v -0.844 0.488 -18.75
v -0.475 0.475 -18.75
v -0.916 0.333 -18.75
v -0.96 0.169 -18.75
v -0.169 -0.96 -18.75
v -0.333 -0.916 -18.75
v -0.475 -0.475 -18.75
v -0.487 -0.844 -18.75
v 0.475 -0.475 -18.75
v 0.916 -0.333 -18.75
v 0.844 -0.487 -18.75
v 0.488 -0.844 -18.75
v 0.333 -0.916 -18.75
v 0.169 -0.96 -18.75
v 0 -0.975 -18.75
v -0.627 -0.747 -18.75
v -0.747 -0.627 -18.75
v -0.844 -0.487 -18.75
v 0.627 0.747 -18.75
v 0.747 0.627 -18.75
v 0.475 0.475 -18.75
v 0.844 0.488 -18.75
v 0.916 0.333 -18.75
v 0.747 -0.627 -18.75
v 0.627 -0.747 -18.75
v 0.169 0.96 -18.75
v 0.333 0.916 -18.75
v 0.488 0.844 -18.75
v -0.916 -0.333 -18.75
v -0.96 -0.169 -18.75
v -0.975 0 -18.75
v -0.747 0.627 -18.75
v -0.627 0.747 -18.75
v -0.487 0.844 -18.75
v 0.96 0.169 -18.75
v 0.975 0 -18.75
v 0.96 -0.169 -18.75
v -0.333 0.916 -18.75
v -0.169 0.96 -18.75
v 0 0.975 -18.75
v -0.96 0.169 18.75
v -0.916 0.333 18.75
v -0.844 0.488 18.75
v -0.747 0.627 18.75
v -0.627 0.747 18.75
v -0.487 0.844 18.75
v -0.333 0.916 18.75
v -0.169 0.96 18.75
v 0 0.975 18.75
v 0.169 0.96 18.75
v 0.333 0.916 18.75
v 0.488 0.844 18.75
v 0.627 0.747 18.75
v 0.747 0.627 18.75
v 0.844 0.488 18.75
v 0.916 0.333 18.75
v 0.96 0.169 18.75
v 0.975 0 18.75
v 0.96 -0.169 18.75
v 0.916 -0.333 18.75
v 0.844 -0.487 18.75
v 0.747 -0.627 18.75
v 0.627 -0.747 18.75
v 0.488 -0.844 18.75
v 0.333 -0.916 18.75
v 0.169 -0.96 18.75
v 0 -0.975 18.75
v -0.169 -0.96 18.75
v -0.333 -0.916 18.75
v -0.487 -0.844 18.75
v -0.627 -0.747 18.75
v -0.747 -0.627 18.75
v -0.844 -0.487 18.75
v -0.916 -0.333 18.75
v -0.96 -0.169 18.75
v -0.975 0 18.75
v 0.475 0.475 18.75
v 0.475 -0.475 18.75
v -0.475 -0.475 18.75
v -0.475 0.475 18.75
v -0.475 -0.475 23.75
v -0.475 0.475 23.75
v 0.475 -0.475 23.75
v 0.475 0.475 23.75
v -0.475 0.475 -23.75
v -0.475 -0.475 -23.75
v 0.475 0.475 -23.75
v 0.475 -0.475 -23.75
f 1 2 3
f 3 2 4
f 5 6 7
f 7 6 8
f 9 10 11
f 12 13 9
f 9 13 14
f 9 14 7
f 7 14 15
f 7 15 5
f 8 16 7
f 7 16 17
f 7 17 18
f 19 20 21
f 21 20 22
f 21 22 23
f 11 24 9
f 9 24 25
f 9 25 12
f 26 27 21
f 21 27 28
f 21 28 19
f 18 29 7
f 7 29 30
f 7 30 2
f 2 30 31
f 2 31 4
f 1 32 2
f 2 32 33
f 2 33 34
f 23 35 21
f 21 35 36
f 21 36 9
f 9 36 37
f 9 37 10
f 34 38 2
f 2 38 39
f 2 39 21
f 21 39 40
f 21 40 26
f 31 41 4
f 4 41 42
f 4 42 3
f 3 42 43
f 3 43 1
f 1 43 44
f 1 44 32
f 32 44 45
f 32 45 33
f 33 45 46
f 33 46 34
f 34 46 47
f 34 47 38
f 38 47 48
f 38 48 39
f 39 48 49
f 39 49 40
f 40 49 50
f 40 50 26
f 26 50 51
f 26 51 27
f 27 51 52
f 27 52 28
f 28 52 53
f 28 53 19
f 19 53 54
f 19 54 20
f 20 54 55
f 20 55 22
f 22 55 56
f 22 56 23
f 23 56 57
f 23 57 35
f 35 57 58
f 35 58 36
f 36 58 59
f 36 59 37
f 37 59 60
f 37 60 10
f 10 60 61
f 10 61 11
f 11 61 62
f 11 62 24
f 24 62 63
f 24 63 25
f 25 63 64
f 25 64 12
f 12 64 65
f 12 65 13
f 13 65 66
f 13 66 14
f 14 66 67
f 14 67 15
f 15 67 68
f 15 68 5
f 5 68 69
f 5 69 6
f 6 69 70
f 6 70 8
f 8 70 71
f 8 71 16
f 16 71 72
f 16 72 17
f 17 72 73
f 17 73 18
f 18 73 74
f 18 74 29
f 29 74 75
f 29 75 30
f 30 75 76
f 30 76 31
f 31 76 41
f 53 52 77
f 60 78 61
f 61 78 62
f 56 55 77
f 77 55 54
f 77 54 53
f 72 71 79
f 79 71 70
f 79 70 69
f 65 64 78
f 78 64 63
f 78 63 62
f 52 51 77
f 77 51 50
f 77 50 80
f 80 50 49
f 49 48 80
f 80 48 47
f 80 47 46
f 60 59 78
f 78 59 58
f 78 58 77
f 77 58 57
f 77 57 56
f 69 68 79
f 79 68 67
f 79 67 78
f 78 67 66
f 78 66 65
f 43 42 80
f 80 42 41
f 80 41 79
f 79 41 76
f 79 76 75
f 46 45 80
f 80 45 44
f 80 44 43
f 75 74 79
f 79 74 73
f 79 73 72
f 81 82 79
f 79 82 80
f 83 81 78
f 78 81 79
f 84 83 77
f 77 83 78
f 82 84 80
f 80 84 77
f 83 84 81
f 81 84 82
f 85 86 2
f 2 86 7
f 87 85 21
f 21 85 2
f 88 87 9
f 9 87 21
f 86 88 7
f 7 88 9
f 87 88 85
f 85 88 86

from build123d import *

# Parameters (mm, degrees)
SKETCH1_R           = 0.975
BOSS_EXTRUDE2_DEPTH = 18.75
SKETCH2_W           = 0.95
SKETCH2_H           = 0.95
BOSS_EXTRUDE3_DEPTH = 5


with BuildPart() as part:
    # Sketch1 → Boss-Extrude2 (new body)
    with BuildSketch(Plane.XY):
        Circle(SKETCH1_R)
    boss_extrude2 = extrude(amount=BOSS_EXTRUDE2_DEPTH)

    # Sketch2 → Boss-Extrude3 (add)
    with BuildSketch(Plane.XY.offset(18.75)):
        Rectangle(SKETCH2_W, SKETCH2_H)
    boss_extrude3 = extrude(amount=BOSS_EXTRUDE3_DEPTH)

    # Mirror1: Boss-Extrude2, Boss-Extrude3 across plane
    add(boss_extrude2.mirror(Plane.XY))
    add(boss_extrude3.mirror(Plane.XY))


solid = part.part
